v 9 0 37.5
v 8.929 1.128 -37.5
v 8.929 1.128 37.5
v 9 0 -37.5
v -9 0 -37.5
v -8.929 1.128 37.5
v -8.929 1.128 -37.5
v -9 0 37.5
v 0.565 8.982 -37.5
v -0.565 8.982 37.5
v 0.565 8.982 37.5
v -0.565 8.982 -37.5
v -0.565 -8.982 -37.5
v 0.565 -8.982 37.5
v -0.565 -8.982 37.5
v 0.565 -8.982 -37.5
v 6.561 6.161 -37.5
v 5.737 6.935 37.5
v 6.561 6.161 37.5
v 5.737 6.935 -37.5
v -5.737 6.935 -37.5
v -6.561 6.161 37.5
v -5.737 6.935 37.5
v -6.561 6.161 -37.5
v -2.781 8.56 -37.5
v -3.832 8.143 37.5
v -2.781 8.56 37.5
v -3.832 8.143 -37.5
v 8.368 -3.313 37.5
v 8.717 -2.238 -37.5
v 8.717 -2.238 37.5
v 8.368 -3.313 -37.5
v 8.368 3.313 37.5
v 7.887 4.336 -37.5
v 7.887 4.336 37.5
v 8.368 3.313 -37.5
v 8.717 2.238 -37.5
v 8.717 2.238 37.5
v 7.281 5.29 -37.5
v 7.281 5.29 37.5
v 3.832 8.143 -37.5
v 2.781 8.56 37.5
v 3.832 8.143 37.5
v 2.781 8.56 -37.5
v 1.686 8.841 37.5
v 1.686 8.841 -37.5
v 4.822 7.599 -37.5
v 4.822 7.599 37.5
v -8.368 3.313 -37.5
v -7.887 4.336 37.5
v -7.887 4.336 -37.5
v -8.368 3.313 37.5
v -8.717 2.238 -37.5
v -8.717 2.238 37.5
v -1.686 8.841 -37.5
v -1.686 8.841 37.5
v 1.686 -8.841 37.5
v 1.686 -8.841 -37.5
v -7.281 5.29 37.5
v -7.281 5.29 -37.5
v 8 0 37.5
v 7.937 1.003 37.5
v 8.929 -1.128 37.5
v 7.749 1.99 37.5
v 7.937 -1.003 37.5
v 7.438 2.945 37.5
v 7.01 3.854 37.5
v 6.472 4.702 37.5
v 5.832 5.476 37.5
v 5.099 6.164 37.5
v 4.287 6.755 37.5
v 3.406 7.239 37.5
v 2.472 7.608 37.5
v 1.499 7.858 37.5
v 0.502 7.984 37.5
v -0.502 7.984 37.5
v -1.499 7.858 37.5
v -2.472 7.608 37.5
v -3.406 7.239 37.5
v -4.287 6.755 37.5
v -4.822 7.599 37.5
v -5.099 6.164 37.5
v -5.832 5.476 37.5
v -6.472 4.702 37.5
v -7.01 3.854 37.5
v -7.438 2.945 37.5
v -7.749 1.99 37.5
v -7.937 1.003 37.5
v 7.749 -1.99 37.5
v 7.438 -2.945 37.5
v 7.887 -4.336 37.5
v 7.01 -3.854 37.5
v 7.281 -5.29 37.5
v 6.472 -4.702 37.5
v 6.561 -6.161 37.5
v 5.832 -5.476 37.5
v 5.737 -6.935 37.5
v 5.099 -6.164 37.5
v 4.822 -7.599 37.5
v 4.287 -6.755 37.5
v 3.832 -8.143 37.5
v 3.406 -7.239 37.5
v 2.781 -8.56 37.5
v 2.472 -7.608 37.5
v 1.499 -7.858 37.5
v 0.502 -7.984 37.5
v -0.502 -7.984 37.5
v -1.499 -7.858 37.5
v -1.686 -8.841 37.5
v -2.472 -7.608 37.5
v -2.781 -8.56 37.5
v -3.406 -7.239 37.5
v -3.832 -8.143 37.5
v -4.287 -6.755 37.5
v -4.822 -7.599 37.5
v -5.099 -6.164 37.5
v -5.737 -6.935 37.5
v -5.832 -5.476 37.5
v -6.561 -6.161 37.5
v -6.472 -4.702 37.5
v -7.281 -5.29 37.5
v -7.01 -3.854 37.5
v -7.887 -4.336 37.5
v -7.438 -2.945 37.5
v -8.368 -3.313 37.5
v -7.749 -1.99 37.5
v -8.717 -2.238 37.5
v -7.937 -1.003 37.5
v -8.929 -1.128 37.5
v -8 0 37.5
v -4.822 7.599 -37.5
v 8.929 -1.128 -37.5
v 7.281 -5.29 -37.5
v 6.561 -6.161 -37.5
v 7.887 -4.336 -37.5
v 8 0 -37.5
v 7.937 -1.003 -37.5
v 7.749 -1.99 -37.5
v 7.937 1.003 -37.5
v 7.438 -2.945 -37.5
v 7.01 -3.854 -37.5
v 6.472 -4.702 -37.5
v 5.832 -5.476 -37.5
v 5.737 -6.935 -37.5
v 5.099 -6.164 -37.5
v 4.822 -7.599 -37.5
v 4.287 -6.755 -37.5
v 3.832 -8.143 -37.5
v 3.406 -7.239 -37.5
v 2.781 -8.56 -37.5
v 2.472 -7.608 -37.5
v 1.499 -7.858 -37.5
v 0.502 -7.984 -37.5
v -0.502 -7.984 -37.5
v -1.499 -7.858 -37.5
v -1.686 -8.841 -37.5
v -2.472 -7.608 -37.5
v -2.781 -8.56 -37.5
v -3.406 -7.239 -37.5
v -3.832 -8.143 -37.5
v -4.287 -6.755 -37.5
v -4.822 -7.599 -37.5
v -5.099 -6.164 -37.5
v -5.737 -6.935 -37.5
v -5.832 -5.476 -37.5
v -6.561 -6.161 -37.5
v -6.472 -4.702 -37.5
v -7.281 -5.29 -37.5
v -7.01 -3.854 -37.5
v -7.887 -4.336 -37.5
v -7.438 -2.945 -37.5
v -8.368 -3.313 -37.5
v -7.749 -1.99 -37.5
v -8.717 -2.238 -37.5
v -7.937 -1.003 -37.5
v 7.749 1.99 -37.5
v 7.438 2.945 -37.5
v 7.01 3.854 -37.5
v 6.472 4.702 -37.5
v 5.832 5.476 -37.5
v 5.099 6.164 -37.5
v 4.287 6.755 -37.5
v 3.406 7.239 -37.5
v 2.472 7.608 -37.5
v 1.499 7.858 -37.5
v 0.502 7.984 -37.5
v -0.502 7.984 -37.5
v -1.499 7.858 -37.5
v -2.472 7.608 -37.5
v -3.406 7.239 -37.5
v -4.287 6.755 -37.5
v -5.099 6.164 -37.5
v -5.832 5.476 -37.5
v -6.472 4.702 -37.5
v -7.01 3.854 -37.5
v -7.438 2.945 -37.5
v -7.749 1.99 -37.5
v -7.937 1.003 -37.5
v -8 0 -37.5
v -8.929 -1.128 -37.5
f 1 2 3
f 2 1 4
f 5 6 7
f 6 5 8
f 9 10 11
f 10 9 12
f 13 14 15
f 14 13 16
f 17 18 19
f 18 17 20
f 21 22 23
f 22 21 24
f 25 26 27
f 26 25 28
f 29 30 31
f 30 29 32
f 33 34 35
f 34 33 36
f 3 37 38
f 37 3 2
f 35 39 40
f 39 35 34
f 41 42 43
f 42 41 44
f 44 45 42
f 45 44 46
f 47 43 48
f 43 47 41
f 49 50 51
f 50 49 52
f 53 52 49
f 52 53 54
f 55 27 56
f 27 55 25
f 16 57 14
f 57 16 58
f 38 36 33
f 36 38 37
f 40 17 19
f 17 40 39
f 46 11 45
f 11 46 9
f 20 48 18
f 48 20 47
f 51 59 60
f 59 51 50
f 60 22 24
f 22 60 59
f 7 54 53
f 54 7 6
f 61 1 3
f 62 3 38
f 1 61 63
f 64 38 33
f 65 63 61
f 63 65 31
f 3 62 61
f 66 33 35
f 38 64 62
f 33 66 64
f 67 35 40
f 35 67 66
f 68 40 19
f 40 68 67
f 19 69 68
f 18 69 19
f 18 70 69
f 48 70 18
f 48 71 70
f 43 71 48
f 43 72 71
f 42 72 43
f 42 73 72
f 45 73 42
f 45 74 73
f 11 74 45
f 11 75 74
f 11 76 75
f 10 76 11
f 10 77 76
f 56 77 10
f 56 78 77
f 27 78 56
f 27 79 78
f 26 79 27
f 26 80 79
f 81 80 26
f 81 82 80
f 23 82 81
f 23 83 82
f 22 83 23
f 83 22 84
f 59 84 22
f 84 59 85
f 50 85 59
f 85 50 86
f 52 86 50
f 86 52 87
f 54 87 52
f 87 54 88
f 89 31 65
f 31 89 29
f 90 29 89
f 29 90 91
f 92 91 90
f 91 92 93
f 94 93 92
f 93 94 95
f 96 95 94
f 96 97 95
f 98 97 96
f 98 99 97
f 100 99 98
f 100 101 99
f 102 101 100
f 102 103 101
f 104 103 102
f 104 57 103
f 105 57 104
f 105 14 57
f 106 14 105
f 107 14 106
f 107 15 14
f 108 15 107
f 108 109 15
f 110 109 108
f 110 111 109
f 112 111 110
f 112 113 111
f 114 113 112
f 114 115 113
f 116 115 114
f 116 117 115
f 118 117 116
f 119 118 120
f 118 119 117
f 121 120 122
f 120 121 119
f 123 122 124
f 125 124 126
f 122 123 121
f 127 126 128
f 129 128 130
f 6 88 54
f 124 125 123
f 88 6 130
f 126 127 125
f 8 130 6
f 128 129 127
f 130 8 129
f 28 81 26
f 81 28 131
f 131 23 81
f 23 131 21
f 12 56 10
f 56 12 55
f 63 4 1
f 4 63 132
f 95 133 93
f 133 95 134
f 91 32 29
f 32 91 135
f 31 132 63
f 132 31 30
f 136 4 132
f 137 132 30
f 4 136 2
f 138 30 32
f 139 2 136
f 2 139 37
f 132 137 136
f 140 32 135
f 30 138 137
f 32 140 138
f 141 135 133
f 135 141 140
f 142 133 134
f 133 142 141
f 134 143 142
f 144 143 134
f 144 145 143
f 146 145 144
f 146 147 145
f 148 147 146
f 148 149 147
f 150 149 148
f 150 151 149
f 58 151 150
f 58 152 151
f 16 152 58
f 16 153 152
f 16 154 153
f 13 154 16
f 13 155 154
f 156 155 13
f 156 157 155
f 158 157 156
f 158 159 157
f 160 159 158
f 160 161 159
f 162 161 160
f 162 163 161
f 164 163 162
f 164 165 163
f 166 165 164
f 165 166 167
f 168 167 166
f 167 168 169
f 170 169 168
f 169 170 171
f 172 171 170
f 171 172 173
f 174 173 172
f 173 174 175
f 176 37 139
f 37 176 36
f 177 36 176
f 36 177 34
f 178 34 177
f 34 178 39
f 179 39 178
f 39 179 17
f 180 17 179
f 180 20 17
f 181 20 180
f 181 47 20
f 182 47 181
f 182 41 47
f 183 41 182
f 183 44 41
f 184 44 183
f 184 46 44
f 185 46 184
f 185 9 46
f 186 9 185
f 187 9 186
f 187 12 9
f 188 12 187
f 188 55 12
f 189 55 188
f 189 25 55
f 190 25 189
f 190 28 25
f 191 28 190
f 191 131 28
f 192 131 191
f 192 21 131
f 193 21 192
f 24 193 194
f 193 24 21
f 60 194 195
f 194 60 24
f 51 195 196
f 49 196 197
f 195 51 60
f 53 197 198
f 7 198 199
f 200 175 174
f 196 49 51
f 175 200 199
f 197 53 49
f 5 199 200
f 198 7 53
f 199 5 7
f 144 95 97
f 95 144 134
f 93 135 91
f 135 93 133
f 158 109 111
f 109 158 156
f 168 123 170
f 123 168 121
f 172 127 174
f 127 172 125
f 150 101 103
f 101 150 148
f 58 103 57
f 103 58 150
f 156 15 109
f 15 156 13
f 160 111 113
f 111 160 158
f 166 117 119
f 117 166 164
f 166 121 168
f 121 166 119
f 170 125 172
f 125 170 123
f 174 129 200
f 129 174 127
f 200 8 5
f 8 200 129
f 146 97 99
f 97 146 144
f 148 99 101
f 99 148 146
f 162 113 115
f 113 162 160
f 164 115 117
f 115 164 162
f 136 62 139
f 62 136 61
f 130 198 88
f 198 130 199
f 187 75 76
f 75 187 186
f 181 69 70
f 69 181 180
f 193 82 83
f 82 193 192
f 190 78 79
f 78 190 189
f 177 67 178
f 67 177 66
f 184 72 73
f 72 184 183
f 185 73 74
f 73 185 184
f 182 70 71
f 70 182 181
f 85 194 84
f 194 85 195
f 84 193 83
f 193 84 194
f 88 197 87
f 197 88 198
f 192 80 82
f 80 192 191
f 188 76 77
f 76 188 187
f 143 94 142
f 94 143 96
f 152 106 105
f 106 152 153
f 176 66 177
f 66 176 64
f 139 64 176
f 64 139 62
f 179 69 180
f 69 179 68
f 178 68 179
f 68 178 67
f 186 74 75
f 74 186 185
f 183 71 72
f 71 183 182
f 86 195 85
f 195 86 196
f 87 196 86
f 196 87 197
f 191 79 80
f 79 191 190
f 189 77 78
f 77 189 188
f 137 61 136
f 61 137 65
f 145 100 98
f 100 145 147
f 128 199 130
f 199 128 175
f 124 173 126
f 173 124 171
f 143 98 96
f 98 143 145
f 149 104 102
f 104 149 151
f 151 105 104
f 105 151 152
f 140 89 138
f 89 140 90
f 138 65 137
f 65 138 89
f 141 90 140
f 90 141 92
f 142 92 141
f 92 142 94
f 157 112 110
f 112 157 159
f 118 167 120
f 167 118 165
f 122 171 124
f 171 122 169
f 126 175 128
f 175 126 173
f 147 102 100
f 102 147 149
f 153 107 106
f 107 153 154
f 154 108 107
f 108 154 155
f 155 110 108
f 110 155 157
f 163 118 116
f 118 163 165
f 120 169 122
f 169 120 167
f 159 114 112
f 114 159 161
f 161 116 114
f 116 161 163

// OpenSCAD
$fn = 50;


difference() {
	union() {
		translate(v = [0, 0, -37.5000000000]) {
			cylinder(h = 75, r = 9.0000000000);
		}
	}
	union() {
		translate(v = [0, 0, -100.0000000000]) {
			cylinder(h = 200, r = 8);
		}
	}
}
